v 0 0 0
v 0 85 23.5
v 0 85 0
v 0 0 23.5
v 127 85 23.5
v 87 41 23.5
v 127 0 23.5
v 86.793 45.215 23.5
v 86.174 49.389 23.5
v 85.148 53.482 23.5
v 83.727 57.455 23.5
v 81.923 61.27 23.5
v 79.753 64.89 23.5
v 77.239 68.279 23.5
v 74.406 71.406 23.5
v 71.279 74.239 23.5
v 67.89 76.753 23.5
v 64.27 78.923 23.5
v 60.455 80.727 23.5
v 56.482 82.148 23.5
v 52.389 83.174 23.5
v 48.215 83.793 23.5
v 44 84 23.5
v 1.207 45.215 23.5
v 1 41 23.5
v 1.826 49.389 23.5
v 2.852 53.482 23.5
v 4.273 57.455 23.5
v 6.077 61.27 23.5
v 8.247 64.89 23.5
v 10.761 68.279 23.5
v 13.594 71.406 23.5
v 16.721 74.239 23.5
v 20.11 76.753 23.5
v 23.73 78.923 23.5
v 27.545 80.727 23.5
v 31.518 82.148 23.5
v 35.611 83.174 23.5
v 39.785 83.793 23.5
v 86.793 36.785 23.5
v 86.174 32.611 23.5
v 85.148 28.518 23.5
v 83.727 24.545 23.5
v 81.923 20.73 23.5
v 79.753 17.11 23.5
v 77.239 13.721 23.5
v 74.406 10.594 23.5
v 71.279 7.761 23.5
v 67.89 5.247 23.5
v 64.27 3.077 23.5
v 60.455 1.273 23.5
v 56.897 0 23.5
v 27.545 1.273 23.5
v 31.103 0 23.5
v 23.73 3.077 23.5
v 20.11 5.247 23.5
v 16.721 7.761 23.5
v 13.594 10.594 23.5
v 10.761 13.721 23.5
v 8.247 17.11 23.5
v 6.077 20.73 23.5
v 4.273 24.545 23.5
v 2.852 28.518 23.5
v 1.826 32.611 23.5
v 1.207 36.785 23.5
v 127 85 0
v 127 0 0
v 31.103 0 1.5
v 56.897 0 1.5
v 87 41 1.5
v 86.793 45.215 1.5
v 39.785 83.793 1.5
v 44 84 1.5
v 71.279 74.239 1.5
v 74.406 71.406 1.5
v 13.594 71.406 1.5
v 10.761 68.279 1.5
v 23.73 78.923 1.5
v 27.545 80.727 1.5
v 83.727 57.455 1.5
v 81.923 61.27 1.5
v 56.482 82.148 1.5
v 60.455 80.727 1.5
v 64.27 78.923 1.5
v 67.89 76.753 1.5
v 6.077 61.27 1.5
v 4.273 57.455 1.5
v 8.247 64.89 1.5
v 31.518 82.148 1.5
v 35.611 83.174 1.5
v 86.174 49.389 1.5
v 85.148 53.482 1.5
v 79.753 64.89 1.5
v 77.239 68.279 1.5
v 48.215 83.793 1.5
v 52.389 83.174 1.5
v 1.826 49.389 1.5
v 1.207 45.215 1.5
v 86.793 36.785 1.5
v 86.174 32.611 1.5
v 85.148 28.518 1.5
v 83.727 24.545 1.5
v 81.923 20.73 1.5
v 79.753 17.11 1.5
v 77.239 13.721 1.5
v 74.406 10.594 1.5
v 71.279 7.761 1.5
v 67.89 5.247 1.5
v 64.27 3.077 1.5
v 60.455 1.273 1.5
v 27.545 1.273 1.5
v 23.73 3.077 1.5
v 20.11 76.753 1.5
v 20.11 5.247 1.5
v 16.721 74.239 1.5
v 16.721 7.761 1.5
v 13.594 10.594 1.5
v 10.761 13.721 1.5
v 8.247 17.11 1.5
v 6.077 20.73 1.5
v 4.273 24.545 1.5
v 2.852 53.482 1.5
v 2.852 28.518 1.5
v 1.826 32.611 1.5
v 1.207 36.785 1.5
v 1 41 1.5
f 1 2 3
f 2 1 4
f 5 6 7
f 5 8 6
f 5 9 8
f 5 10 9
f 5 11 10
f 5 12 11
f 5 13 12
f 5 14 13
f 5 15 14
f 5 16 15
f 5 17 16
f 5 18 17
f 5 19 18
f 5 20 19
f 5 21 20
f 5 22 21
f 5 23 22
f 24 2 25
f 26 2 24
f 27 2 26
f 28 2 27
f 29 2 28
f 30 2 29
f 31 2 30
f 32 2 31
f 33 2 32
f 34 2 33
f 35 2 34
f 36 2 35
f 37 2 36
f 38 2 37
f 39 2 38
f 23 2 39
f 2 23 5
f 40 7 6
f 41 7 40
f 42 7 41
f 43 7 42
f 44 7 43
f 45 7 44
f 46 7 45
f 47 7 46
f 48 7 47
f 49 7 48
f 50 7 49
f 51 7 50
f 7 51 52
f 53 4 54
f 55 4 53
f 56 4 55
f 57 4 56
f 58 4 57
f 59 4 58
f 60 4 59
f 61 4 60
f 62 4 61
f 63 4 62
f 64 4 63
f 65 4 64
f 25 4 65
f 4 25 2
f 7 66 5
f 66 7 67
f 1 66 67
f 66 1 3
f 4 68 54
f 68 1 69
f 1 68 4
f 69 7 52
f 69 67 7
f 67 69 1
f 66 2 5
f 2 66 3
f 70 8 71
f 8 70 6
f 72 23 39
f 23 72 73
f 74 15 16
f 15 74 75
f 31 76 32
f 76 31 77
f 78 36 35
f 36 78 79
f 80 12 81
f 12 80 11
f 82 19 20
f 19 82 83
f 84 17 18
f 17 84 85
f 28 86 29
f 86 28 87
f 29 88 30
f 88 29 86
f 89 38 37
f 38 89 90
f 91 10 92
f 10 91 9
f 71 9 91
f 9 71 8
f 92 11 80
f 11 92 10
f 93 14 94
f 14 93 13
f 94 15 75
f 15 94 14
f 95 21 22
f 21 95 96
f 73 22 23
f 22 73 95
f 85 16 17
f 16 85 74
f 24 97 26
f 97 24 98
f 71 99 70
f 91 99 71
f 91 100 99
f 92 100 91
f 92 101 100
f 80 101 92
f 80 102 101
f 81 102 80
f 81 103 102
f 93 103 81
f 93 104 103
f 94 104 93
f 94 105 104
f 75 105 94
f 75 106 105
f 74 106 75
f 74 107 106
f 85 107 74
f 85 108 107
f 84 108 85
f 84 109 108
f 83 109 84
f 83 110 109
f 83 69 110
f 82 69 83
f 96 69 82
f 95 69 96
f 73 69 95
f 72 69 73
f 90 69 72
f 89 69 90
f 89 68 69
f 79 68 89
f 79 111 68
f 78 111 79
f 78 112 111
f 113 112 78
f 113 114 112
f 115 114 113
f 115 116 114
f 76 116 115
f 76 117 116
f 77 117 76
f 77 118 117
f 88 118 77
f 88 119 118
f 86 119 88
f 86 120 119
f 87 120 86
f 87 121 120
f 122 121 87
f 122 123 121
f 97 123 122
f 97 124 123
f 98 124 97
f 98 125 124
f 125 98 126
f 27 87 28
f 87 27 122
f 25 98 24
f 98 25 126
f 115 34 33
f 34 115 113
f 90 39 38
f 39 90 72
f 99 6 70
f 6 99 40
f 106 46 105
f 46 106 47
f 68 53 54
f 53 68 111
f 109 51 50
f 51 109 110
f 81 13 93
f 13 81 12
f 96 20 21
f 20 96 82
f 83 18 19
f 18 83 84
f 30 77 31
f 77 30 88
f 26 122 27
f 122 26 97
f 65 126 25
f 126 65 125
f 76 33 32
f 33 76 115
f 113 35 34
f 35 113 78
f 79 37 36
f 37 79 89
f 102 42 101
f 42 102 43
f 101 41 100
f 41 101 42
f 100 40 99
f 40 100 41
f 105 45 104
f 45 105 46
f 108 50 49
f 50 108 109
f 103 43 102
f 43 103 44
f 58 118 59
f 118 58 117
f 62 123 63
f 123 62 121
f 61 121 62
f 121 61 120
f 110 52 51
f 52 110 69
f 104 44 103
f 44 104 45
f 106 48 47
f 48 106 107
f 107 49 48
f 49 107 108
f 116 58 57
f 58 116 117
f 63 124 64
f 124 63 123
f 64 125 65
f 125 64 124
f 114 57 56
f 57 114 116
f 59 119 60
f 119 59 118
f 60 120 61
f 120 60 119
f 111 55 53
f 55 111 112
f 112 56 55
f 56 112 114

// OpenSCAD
// Generic Petri Dish 100mL
// loadName: generic_petri_dish_100ml
// Auto-generated by labware_to_stl.py from Opentrons V2 labware definition

$fn = 64;

difference() {
    // ── Labware body ──────────────────────────────────────────────
    cube([127.0000, 85.0000, 23.5000]);

    // ── Well cutouts ──────────────────────────────────────────────
    // Well A1
    translate([44.0000, 41.0000, 1.5000])
        cylinder(h=23.0000, r=43.0000, $fn=$fn);
}
